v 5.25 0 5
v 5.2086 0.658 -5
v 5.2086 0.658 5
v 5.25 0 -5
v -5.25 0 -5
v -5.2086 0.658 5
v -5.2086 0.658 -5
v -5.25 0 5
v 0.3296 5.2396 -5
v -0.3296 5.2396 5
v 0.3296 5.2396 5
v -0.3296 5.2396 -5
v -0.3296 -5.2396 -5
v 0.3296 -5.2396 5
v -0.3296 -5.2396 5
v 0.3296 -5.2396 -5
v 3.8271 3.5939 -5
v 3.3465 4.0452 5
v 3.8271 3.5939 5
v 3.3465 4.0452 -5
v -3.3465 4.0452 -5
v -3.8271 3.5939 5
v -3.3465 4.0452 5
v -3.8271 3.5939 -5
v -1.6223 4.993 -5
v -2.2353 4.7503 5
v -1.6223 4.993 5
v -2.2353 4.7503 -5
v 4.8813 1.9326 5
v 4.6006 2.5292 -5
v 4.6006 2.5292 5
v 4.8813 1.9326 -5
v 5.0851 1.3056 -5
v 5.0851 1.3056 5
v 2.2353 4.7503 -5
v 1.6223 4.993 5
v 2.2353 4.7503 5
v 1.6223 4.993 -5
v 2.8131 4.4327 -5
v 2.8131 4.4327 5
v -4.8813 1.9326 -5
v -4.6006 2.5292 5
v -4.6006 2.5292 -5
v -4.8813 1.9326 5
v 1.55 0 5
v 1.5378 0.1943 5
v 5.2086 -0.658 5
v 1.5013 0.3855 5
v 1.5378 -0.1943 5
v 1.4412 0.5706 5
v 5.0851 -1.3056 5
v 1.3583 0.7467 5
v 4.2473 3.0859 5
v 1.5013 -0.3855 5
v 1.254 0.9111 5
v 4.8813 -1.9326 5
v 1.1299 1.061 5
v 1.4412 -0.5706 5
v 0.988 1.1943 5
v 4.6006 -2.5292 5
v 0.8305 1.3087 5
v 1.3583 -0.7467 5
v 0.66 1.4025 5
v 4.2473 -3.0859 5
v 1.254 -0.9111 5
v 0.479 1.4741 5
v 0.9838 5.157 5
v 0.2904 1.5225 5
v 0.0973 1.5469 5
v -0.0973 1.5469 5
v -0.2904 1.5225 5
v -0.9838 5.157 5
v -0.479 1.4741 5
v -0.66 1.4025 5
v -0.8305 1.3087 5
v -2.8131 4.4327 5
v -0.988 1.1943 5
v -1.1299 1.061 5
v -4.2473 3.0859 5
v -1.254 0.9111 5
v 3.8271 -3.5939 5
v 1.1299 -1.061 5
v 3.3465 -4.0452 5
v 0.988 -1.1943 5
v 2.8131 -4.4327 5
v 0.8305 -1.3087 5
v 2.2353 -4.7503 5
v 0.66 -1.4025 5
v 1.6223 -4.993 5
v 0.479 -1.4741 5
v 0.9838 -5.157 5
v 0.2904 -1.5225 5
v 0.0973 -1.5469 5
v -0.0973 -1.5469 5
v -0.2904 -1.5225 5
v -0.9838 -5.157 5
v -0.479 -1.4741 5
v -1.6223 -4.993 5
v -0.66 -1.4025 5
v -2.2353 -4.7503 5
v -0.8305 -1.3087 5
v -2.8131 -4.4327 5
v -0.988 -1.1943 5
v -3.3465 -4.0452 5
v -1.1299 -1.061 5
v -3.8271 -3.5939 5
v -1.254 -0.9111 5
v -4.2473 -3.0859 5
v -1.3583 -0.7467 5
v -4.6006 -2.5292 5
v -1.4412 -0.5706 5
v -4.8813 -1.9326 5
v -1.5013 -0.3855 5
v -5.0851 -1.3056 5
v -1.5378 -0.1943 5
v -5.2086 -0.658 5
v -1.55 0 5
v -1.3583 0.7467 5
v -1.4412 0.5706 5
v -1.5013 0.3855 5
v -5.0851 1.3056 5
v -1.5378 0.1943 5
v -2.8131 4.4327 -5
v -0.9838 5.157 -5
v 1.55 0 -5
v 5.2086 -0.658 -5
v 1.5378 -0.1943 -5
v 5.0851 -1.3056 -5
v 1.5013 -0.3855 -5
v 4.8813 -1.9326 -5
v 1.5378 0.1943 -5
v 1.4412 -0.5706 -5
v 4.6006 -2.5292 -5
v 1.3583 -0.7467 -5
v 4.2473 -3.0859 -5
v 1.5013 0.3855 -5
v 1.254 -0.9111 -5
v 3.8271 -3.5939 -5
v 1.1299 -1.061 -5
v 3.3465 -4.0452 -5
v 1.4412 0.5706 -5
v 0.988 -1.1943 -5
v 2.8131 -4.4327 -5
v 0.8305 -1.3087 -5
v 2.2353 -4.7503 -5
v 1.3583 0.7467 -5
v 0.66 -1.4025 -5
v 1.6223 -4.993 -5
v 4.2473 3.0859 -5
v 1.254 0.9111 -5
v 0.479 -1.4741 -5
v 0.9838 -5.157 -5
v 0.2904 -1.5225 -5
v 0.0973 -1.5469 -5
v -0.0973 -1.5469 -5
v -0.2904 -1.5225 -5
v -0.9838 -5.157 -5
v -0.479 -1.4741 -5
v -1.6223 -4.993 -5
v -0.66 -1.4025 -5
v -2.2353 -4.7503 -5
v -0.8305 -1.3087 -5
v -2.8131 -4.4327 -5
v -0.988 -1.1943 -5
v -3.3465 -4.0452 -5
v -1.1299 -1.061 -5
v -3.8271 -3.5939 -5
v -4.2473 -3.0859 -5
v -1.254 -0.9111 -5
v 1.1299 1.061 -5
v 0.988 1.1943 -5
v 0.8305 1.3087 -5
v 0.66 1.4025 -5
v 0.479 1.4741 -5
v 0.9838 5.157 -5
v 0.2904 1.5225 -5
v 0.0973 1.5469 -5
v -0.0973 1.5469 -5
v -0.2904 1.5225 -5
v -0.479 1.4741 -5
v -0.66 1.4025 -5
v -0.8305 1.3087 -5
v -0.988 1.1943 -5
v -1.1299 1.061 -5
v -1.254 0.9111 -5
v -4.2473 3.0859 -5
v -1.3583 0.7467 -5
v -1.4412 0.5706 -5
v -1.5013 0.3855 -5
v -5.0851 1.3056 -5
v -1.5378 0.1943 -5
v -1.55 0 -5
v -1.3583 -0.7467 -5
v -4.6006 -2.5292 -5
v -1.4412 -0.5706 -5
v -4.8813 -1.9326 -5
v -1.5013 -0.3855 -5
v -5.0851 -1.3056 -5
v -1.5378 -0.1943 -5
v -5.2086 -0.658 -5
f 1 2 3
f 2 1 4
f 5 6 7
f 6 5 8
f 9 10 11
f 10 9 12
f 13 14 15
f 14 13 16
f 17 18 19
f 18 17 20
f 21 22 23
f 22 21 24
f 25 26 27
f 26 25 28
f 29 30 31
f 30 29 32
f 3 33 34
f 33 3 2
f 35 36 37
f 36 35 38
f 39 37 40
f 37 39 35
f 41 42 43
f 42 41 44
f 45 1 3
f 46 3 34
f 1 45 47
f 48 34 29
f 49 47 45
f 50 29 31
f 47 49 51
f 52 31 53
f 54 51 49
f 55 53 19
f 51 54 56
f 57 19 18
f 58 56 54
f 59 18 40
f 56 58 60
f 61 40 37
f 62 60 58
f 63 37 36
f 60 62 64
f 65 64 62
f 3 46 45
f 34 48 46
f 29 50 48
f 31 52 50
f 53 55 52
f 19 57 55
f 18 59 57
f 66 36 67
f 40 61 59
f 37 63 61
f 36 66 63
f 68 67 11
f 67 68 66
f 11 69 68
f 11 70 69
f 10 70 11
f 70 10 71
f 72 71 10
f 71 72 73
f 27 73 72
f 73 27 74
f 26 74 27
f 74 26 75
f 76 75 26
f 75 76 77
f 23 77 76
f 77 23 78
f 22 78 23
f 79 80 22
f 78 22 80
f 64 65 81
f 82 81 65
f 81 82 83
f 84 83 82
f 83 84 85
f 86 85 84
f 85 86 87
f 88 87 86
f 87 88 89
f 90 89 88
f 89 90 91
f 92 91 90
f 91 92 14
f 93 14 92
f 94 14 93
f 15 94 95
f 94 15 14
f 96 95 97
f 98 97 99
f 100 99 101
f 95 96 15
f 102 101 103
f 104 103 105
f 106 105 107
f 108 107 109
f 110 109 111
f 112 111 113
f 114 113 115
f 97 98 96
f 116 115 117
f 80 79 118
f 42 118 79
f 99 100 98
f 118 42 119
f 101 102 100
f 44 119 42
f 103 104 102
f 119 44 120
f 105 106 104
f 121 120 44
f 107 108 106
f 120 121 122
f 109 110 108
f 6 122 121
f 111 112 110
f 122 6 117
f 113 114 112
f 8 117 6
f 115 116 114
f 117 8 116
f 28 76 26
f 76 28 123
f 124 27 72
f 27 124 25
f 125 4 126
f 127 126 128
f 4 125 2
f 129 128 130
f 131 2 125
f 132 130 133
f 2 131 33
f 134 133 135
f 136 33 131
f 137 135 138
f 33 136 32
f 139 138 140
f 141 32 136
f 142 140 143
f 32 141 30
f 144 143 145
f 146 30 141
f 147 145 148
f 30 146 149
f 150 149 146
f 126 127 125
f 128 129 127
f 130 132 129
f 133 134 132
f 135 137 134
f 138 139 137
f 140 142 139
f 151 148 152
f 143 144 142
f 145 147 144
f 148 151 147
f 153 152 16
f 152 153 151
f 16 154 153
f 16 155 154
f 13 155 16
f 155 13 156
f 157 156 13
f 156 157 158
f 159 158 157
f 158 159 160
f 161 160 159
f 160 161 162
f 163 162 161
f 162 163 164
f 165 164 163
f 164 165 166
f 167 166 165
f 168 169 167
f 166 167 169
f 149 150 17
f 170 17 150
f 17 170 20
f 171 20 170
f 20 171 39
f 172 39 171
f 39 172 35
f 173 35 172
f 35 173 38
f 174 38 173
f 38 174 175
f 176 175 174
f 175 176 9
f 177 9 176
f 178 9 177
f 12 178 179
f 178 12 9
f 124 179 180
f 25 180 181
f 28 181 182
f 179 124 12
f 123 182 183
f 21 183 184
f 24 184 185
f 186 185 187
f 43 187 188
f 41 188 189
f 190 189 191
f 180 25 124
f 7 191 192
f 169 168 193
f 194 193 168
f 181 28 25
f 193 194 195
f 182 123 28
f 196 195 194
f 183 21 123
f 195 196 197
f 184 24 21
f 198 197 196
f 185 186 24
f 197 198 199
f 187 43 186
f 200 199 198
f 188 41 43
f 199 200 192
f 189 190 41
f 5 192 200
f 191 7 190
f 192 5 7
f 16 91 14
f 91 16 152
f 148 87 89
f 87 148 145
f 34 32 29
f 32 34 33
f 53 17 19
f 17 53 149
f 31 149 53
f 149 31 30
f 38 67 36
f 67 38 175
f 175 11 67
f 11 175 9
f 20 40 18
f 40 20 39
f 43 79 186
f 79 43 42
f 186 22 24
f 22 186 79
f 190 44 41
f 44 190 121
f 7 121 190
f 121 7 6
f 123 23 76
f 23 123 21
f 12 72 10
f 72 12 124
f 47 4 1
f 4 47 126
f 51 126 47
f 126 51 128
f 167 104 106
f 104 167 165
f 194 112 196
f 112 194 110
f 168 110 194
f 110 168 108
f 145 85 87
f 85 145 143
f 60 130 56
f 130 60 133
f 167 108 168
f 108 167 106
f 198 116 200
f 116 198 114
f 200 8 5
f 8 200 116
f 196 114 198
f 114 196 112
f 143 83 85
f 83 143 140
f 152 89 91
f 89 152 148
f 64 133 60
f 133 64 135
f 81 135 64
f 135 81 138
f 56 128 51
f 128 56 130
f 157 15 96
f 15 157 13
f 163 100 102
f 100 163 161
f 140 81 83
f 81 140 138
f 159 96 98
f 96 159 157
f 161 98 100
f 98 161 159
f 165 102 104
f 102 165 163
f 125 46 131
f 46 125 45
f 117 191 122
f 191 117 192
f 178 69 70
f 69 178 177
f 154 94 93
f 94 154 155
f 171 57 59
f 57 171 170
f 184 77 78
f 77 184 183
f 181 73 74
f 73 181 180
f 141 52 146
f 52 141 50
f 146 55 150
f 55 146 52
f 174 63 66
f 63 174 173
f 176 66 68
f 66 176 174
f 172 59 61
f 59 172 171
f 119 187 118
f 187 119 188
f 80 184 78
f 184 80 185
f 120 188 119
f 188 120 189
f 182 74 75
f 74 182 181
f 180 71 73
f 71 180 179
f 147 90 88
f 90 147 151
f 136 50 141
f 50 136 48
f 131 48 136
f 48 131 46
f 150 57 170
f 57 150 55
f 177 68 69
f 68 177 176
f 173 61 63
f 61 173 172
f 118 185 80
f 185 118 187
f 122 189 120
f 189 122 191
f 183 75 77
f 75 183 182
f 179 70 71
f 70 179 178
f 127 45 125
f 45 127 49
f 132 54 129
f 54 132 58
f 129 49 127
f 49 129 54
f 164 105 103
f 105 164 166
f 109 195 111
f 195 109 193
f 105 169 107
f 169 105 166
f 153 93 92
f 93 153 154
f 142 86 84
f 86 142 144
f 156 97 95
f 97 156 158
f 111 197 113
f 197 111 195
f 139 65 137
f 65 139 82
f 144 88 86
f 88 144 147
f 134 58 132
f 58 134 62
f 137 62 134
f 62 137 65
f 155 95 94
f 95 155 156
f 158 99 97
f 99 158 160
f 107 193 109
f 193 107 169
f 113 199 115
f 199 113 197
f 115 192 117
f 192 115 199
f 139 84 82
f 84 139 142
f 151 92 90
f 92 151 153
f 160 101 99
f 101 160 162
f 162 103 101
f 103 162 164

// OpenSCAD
$fn = 50;


difference() {
	union() {
		translate(v = [0, 0, -5.0000000000]) {
			cylinder(h = 10, r = 5.2500000000);
		}
	}
	union() {
		translate(v = [0, 0, -100.0000000000]) {
			cylinder(h = 200, r = 1.5500000000);
		}
	}
}
